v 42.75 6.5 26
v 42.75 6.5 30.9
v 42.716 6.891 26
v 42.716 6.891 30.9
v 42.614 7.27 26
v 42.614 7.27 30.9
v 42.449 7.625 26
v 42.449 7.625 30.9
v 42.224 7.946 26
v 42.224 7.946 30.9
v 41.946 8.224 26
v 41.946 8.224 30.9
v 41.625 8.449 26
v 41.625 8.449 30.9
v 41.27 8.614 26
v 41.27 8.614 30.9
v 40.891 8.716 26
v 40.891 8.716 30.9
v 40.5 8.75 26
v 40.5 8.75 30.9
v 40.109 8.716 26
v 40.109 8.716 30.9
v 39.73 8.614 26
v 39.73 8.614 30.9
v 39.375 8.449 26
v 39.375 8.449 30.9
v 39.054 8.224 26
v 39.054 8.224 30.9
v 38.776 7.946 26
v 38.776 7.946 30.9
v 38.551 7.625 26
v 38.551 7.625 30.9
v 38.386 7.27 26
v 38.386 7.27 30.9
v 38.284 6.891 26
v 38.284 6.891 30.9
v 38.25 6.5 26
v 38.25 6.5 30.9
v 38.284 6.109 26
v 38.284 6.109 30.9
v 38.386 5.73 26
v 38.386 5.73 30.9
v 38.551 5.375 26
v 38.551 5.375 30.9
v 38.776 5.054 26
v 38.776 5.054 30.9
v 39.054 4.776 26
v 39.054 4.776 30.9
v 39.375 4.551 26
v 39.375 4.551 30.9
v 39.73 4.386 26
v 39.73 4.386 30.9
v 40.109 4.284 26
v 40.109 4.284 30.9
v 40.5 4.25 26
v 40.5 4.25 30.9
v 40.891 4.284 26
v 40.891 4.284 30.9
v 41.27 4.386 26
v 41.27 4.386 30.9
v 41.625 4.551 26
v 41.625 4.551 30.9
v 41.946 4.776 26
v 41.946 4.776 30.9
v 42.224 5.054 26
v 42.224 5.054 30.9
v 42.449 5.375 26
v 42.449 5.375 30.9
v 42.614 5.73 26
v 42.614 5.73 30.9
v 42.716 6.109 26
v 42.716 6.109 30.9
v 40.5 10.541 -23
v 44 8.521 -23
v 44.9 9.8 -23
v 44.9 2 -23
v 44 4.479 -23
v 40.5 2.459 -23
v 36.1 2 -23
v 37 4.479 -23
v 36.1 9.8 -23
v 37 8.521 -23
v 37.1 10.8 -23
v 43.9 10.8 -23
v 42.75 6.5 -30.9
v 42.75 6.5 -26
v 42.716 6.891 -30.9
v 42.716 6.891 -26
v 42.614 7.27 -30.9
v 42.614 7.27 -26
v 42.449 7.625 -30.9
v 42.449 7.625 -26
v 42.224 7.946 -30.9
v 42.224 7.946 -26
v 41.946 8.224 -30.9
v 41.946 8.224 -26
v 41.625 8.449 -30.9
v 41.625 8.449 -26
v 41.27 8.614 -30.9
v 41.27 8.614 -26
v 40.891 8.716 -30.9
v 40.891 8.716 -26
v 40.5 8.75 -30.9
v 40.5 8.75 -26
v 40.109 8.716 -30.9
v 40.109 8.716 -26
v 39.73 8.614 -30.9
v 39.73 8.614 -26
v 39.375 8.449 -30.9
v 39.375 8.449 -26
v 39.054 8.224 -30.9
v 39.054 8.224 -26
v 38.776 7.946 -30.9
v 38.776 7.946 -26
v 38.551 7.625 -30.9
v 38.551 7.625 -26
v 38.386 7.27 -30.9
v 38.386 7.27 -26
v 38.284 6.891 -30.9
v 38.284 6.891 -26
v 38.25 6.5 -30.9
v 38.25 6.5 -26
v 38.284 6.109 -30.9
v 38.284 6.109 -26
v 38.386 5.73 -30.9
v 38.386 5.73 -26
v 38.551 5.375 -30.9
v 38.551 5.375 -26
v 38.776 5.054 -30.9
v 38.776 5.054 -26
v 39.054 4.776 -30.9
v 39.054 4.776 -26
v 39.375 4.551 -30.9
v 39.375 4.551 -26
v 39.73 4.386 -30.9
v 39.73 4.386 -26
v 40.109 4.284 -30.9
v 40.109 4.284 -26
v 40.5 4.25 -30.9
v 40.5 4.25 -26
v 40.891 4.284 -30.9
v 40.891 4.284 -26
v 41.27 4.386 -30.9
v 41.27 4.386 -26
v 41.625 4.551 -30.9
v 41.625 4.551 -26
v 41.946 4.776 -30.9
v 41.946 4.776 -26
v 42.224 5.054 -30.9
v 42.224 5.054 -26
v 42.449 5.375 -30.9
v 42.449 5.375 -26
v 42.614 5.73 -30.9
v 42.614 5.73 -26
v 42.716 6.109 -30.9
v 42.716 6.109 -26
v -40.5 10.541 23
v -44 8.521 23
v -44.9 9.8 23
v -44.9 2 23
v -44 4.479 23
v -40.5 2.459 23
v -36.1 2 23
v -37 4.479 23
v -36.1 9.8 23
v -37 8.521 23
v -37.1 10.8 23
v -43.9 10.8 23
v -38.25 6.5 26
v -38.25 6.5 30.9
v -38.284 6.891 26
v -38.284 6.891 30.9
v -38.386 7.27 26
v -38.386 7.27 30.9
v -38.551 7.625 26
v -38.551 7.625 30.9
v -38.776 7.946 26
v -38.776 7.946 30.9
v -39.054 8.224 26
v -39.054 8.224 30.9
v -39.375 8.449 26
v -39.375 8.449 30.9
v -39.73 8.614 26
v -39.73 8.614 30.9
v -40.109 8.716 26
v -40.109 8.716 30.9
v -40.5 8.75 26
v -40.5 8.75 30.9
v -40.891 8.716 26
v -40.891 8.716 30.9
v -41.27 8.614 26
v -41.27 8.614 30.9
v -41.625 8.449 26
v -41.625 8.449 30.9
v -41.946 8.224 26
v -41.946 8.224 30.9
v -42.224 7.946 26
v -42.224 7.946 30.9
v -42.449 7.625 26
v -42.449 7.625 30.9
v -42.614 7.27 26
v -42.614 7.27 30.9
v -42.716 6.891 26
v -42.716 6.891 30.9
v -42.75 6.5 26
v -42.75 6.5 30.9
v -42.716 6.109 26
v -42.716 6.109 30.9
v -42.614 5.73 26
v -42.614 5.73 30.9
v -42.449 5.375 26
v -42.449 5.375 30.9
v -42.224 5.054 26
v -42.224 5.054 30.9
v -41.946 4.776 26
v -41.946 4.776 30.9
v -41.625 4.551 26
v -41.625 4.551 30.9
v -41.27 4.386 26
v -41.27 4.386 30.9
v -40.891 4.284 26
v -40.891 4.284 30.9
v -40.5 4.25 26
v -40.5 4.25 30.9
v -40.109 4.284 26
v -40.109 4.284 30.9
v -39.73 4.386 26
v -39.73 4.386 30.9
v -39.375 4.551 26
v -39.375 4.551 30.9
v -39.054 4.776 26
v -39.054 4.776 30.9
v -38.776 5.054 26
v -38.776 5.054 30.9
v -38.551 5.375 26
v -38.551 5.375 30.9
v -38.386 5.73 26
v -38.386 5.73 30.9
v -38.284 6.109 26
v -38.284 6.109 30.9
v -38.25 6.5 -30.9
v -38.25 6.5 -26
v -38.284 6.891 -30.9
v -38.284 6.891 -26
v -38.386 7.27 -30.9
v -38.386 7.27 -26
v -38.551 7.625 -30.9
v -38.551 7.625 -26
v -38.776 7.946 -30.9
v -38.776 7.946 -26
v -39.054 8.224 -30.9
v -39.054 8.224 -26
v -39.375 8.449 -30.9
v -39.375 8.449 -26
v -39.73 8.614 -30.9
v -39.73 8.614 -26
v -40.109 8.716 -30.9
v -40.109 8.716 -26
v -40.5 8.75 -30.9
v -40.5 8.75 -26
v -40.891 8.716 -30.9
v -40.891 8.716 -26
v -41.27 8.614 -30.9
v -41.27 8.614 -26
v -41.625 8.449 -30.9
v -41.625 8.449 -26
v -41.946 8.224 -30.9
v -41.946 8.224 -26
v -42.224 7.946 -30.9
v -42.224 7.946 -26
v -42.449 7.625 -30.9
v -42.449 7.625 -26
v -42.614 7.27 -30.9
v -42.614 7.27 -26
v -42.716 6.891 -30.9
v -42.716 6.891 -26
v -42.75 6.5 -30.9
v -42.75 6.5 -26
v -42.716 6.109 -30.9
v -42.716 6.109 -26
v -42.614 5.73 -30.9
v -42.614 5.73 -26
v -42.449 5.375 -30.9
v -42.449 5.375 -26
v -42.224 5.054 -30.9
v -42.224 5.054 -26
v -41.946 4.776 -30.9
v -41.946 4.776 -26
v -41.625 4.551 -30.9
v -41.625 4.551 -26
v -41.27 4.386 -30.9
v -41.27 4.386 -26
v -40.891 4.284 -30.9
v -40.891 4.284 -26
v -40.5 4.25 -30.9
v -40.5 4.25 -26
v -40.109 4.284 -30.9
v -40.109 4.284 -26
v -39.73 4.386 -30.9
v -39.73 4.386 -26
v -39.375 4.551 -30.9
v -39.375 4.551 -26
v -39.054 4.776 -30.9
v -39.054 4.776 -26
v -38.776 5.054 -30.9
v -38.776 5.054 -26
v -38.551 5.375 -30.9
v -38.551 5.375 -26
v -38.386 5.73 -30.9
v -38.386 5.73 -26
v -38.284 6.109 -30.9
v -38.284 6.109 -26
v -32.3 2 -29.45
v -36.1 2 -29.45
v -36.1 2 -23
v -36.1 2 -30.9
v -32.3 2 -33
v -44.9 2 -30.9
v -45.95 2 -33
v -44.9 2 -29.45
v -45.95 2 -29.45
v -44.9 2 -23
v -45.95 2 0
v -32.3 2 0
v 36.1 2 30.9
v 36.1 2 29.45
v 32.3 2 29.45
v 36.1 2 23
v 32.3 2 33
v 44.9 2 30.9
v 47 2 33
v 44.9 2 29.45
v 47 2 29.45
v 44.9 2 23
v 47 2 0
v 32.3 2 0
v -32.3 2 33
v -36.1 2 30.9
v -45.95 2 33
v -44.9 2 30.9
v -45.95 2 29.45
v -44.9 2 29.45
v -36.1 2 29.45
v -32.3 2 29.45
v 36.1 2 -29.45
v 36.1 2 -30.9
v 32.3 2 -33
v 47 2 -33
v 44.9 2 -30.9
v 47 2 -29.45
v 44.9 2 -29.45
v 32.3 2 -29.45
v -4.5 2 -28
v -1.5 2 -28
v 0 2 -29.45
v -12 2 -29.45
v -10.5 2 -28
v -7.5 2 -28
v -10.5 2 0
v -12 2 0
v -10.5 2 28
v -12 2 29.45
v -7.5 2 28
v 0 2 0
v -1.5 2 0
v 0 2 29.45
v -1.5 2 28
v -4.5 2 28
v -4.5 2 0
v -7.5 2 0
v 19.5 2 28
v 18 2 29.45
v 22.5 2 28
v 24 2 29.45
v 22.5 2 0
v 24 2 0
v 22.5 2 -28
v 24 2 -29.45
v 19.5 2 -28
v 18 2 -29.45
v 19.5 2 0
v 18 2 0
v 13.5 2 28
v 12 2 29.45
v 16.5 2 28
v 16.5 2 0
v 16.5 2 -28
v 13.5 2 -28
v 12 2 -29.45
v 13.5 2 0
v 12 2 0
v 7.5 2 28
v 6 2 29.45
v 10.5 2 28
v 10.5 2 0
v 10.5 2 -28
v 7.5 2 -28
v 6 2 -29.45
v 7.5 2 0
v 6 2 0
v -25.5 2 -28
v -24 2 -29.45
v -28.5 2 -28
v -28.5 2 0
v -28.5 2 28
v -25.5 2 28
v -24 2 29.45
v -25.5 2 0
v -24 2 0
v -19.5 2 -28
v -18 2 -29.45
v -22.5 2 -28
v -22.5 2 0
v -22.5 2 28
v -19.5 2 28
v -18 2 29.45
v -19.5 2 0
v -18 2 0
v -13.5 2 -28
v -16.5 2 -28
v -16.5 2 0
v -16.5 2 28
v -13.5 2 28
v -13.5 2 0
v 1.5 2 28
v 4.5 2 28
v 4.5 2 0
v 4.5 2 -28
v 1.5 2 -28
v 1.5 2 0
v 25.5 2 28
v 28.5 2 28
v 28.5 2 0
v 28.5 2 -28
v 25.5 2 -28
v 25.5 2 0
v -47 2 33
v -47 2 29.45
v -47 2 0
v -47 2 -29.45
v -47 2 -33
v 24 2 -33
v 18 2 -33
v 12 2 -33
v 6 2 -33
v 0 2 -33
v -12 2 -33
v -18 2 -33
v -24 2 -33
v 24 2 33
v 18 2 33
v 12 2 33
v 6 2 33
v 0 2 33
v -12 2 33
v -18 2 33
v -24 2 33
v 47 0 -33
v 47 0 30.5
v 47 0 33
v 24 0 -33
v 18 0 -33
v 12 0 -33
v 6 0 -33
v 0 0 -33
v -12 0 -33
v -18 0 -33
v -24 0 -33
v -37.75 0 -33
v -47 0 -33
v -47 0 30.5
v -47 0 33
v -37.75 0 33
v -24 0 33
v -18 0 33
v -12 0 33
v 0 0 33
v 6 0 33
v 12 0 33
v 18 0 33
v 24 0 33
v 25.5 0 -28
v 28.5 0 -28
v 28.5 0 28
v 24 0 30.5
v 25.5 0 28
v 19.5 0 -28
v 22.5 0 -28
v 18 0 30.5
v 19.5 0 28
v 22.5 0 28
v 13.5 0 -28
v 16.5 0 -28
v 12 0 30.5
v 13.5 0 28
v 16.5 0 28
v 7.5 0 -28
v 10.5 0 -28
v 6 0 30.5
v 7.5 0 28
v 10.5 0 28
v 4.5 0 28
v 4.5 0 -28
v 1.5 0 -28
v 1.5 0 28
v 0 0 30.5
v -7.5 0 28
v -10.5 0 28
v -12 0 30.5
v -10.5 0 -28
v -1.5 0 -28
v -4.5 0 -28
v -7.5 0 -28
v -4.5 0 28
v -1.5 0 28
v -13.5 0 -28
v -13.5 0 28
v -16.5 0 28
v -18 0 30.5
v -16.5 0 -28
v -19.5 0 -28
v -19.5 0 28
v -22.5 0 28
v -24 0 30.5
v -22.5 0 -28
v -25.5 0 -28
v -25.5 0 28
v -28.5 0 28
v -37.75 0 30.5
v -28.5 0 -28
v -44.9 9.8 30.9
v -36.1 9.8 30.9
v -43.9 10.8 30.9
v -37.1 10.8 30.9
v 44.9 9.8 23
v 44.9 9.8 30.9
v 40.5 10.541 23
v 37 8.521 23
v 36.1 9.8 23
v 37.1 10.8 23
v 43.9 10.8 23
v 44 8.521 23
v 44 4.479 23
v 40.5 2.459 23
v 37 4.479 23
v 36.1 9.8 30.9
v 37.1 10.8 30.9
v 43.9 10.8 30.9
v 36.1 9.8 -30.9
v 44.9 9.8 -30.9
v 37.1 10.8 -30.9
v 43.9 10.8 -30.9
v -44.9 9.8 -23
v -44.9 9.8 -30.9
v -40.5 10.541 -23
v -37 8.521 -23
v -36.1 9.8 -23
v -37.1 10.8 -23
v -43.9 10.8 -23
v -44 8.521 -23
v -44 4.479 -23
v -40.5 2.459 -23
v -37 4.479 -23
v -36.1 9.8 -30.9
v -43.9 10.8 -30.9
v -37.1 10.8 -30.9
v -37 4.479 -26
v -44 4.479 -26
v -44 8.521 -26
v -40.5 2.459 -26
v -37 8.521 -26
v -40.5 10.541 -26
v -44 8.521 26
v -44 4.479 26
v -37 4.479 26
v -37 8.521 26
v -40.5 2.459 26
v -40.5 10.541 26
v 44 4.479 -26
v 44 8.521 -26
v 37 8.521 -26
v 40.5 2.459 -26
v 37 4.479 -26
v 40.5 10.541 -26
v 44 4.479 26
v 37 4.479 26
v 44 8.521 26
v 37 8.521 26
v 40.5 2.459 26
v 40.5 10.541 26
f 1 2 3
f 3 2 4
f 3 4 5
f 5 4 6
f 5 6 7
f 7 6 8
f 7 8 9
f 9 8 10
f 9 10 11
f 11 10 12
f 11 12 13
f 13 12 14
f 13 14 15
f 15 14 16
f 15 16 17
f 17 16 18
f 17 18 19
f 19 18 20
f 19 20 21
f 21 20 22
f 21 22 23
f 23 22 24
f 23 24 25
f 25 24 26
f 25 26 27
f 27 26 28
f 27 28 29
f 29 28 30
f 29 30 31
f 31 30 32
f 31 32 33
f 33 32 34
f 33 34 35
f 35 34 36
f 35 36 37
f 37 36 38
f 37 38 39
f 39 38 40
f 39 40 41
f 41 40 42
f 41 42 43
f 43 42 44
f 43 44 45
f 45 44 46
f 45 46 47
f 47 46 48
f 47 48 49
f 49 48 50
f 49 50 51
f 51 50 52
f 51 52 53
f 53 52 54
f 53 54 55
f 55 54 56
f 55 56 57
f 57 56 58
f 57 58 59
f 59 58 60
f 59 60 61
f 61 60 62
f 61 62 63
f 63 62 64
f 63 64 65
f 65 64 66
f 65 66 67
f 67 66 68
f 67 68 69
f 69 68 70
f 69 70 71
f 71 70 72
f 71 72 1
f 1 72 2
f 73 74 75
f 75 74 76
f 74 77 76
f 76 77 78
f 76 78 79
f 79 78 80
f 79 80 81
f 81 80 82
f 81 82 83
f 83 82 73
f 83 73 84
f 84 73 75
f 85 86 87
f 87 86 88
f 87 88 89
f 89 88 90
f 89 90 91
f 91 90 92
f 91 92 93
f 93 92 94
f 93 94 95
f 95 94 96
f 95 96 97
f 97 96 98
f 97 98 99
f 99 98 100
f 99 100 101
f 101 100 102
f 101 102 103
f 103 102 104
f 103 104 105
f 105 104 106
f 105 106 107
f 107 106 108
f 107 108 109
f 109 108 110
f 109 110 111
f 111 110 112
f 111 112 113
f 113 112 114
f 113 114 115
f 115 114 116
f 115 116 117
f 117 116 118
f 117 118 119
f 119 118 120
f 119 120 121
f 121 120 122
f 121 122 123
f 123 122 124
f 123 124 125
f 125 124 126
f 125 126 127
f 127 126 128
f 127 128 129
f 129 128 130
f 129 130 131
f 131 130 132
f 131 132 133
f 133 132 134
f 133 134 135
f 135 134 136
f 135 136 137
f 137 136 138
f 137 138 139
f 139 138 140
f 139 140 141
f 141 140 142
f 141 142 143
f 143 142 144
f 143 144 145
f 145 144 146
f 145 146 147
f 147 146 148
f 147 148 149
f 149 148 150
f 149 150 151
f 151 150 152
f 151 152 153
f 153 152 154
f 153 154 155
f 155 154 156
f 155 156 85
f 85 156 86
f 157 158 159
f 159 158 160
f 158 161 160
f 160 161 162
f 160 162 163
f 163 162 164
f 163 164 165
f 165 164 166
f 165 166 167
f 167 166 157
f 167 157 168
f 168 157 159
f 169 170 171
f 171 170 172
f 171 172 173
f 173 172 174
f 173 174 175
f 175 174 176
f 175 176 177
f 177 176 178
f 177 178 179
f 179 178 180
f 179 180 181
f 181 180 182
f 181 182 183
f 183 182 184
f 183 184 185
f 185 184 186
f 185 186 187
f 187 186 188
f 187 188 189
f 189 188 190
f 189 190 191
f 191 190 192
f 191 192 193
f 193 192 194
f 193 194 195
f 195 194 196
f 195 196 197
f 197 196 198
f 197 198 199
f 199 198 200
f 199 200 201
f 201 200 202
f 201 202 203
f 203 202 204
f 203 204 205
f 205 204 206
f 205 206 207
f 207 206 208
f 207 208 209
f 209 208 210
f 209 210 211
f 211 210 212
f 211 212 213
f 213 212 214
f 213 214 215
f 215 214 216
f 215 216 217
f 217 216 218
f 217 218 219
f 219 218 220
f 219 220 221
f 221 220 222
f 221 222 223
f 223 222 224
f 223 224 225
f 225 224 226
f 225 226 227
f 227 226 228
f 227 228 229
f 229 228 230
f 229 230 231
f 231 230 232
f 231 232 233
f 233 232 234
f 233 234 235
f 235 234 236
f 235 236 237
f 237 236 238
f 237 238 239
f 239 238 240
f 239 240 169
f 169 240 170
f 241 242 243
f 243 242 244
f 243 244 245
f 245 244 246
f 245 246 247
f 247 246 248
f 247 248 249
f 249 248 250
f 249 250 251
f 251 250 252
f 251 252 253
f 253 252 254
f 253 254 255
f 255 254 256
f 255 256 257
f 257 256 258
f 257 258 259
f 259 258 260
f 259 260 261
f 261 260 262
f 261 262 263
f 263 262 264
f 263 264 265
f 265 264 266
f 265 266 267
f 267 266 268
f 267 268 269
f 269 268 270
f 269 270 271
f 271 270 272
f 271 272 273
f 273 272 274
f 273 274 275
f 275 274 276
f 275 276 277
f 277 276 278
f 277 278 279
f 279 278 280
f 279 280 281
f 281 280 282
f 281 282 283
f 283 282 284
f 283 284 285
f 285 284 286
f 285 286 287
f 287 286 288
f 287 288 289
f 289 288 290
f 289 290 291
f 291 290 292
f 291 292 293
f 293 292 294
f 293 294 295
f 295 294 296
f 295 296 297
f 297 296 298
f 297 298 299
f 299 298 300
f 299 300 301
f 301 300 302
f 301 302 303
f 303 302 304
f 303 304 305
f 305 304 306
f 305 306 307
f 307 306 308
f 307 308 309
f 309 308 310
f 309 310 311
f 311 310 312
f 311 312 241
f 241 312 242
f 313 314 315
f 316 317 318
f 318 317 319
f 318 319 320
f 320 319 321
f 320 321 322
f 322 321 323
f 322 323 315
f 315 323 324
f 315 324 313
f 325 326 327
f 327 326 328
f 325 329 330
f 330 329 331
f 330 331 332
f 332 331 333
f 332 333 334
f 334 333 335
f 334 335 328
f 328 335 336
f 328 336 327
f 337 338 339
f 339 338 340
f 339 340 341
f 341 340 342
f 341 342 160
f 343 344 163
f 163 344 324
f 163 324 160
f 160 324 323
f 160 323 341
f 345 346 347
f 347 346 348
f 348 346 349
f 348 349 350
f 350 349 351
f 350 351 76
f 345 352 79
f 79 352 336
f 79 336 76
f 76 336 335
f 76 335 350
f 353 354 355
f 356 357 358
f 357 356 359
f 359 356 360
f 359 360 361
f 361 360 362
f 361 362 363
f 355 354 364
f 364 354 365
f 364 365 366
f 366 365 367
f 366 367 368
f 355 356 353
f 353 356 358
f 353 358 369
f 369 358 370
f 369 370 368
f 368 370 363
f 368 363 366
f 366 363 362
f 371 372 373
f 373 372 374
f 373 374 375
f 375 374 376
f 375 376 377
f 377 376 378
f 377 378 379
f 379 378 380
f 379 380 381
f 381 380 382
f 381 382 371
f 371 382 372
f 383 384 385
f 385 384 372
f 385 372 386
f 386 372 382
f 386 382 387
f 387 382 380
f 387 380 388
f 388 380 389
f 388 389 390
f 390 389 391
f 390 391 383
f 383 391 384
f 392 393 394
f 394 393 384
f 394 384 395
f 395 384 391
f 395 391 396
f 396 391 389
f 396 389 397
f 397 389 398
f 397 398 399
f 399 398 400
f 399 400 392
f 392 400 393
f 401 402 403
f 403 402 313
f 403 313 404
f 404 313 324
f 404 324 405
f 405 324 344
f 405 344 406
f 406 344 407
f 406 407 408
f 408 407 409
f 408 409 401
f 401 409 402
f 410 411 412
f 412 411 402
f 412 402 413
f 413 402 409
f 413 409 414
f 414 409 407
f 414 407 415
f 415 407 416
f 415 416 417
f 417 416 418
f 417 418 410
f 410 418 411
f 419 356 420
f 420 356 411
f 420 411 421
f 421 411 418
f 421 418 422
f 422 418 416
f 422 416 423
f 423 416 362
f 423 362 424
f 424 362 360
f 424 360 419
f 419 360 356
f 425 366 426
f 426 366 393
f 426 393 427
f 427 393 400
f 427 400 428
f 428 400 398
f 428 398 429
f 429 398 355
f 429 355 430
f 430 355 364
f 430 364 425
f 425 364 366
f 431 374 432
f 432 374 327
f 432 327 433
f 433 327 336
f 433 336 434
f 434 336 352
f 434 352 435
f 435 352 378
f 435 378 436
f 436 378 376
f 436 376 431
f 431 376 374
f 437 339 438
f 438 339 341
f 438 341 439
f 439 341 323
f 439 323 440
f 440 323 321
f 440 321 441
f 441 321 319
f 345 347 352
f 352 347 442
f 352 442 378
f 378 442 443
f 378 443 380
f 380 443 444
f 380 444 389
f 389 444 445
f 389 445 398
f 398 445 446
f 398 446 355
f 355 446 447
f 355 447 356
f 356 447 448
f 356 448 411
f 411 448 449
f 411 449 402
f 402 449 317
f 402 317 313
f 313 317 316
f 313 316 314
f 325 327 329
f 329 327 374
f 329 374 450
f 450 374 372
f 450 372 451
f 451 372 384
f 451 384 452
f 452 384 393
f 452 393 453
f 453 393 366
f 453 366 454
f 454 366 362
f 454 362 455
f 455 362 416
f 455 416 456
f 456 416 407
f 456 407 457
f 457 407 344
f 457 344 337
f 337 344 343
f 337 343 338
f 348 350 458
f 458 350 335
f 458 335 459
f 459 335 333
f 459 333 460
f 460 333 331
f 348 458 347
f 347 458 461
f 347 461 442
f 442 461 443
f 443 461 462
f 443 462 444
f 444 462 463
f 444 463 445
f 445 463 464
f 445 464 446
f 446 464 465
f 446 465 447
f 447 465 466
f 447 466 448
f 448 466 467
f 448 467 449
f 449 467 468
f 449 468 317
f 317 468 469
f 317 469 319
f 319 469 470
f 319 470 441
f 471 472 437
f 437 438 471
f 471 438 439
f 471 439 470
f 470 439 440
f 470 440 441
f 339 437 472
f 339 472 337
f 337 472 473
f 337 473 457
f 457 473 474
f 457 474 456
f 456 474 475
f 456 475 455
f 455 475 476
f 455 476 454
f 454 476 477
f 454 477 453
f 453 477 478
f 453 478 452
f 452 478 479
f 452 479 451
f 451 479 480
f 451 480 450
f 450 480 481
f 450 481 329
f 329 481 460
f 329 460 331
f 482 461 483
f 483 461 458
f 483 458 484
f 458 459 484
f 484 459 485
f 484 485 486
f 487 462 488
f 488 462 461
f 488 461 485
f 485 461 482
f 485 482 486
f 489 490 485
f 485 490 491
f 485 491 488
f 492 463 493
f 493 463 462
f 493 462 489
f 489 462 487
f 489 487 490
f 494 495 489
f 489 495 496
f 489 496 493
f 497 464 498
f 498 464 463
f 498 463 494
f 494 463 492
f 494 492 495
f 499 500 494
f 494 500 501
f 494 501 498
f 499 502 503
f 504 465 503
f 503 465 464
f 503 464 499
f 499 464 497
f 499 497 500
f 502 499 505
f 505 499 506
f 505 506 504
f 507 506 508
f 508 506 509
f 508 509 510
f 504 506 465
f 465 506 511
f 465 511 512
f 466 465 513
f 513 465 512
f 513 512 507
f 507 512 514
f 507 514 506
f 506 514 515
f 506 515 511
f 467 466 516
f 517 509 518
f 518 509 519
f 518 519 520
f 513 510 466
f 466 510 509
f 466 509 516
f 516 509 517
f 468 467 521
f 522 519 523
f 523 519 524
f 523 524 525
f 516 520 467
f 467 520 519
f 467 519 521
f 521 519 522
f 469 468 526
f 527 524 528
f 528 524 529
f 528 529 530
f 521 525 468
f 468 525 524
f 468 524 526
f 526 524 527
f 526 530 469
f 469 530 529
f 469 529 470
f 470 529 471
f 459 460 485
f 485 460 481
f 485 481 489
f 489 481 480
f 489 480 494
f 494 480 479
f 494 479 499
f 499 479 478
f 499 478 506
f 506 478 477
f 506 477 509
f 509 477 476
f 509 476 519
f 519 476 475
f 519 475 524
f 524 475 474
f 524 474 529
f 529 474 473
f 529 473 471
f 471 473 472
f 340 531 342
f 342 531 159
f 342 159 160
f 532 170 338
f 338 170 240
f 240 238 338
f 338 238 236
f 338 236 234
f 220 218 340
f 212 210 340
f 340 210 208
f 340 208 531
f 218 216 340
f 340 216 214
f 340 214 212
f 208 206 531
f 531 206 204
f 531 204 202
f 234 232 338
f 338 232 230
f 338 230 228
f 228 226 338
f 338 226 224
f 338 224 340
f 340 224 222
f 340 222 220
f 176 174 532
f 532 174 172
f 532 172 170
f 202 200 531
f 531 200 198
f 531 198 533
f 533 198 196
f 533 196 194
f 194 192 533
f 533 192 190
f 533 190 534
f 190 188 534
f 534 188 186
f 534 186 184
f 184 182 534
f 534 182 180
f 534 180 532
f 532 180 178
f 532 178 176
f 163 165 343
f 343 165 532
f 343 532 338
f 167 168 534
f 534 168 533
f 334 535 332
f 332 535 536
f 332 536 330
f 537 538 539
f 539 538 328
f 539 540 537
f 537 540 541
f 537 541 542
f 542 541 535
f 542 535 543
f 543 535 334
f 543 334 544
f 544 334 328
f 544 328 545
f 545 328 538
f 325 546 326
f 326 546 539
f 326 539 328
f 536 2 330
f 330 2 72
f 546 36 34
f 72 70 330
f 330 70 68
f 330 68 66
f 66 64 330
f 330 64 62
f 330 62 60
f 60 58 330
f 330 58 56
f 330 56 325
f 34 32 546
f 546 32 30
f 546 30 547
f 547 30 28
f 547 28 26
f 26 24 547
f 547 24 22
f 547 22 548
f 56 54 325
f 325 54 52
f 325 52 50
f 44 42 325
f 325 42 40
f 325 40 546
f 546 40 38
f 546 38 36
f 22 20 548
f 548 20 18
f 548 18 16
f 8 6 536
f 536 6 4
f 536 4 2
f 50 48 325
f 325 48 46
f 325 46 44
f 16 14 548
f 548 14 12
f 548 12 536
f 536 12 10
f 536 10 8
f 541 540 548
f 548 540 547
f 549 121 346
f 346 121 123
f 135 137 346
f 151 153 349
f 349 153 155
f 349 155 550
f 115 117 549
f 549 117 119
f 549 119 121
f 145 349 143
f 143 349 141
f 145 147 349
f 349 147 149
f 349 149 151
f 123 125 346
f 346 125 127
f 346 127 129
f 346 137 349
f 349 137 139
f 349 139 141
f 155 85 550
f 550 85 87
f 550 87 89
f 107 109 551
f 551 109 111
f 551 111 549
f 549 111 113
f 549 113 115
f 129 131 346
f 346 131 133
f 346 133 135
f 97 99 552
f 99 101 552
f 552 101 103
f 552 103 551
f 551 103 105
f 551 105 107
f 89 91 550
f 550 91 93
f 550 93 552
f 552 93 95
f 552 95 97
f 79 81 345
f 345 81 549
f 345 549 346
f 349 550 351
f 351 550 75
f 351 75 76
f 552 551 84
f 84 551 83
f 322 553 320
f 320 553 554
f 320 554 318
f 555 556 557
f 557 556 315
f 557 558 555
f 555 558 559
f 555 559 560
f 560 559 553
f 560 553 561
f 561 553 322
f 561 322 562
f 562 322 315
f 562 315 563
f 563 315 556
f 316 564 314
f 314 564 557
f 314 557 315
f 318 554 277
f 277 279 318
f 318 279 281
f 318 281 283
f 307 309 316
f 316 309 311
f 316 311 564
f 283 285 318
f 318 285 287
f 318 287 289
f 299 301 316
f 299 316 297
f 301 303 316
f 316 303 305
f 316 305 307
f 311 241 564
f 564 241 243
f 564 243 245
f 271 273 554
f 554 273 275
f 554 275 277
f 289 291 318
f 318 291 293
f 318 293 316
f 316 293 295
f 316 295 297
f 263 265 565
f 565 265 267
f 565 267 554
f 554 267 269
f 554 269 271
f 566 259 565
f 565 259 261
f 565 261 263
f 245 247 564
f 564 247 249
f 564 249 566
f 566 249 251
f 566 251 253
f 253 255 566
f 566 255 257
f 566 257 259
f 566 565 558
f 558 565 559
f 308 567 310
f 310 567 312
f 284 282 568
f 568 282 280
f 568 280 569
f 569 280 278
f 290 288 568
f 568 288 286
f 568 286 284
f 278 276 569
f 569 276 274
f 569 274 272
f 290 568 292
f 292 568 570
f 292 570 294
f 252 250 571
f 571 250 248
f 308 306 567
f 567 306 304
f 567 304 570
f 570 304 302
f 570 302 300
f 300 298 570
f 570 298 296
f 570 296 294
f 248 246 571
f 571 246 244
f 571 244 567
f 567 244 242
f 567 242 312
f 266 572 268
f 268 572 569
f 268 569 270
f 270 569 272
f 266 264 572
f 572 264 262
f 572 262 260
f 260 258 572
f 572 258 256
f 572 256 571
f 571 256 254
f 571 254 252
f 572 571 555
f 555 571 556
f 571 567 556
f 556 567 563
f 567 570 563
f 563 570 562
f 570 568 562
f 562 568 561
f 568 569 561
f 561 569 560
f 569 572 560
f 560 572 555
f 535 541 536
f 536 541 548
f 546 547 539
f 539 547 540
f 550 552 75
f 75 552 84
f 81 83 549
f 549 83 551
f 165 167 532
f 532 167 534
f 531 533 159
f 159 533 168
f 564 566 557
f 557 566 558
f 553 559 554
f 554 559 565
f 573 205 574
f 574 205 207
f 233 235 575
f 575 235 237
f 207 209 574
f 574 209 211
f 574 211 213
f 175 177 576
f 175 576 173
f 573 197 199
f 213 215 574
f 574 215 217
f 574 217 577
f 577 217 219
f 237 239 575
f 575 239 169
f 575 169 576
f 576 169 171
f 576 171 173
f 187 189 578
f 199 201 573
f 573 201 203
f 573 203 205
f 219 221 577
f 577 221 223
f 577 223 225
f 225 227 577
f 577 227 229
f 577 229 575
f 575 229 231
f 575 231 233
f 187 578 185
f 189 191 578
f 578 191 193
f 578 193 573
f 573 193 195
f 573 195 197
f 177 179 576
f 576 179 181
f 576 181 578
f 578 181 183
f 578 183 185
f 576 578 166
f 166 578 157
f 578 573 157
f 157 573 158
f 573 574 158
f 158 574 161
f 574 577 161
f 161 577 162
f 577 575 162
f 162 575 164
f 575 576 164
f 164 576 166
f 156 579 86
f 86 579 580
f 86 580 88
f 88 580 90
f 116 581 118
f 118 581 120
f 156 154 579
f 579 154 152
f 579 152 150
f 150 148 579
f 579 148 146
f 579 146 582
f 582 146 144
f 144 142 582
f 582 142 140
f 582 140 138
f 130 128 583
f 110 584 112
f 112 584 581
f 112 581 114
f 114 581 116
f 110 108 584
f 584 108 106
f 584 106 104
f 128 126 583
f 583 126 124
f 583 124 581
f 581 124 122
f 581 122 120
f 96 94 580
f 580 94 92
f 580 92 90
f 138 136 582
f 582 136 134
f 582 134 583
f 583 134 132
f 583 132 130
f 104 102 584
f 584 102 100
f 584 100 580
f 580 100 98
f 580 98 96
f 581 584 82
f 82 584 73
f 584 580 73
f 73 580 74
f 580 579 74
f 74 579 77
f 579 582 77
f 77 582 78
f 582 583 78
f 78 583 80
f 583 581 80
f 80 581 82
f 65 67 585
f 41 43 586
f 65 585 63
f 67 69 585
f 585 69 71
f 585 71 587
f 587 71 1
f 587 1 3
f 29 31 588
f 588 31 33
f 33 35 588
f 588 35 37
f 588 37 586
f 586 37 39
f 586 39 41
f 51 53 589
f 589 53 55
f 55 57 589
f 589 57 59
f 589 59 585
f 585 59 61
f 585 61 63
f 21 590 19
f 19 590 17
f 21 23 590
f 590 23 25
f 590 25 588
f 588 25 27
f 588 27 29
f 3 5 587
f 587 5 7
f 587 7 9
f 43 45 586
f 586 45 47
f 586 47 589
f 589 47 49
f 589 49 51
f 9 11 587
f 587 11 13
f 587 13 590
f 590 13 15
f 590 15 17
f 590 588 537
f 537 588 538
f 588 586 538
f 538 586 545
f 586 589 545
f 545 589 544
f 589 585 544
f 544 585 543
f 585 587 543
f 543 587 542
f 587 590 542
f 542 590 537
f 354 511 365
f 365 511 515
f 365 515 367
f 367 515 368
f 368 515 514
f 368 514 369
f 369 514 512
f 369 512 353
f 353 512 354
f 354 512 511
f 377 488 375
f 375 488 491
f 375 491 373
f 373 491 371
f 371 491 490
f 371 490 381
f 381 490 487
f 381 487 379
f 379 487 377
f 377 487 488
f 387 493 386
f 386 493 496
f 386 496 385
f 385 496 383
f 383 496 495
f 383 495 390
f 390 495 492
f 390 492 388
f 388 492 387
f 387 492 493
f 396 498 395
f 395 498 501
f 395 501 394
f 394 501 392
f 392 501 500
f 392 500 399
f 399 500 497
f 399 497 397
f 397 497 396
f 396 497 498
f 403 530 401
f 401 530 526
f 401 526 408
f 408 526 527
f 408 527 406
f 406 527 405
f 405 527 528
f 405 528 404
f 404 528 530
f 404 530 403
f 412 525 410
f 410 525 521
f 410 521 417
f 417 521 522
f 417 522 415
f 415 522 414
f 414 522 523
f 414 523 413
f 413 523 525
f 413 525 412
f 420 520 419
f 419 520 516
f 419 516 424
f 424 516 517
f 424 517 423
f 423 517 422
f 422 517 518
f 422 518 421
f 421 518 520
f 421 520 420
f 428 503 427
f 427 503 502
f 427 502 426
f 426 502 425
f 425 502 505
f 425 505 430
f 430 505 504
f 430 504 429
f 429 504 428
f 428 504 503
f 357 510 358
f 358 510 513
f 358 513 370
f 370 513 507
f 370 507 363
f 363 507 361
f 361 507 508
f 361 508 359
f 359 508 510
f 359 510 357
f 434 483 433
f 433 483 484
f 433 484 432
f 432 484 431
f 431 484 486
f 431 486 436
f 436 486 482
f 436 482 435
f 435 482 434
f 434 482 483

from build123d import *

# Parameters (mm, degrees)
SKETCH1_W            = 94
SKETCH1_H            = 66
BOSS_EXTRUDE1_DEPTH  = 2
SKETCH2_W            = 8.8
SKETCH2_H            = 7.9
BOSS_EXTRUDE2_DEPTH  = 8.8
SKETCH3_R            = 2.25
CUT_EXTRUDE1_DEPTH   = 81.055293392
CUT_EXTRUDE2_DEPTH   = 3
CHAMFER1_SIZE        = 1
MIRROR2_COPY_1_DEPTH = 3
CUT_EXTRUDE3_REACH   = 60.099
SKETCH6_W            = 3
SKETCH6_H            = 56


with BuildPart() as part:
    # Sketch1 → Boss-Extrude1 (new body)
    with BuildSketch(Plane(origin=(0, 0, 0), x_dir=(1, 0, 0), z_dir=(0, 1, 0))):
        Rectangle(SKETCH1_W, SKETCH1_H)
    extrude(amount=BOSS_EXTRUDE1_DEPTH)

    # Sketch2 → Boss-Extrude2 (add)
    with BuildSketch(Plane(origin=(0, 2, 0), x_dir=(1, 0, 0), z_dir=(0, 1, 0))):
        with Locations((-40.5, -26.95)):
            Rectangle(SKETCH2_W, SKETCH2_H)
        with Locations((40.5, -26.95)):
            Rectangle(SKETCH2_W, SKETCH2_H)
        with Locations((40.5, 26.95)):
            Rectangle(SKETCH2_W, SKETCH2_H)
        with Locations((-40.5, 26.95)):
            Rectangle(SKETCH2_W, SKETCH2_H)
    extrude(amount=BOSS_EXTRUDE2_DEPTH)

    # Sketch3 → Cut-Extrude1 (cut, through all)
    with BuildSketch(Plane.XY.offset(30.9)):
        with Locations((-40.5, 6.5)):
            Circle(SKETCH3_R)
        with Locations((40.5, 6.5)):
            Circle(SKETCH3_R)
    extrude(amount=-CUT_EXTRUDE1_DEPTH, mode=Mode.SUBTRACT)

    # Sketch5 → Cut-Extrude2 (cut)
    with BuildSketch(Plane.XY.offset(-23)):
        Polygon((-40.5, 10.541451884), (-44, 8.520725942), (-44, 4.479274058), (-40.5, 2.458548116), (-37, 4.479274058), (-37, 8.520725942), align=None)
    cut_extrude2 = extrude(amount=-CUT_EXTRUDE2_DEPTH, mode=Mode.SUBTRACT)

    # Chamfer1
    chamfer1_edges = [part.edges().sort_by_distance(p)[0] for p in [
        (-44.9, 10.8, 26.95),
        (-36.1, 10.8, 26.95),
        (44.9, 10.8, 26.95),
        (36.1, 10.8, 26.95),
        (36.1, 10.8, -26.95),
        (44.9, 10.8, -26.95),
        (-44.9, 10.8, -26.95),
        (-36.1, 10.8, -26.95),
    ]]
    chamfer(chamfer1_edges, length=CHAMFER1_SIZE)

    # Mirror1: Cut-Extrude2 across plane
    add(cut_extrude2.mirror(Plane.XY), mode=Mode.SUBTRACT)

    # Mirror2: Cut-Extrude2 across plane
    add(cut_extrude2.mirror(Plane(origin=(0, 0, 0), x_dir=(0, 0, 1), z_dir=(1, 0, 0))), mode=Mode.SUBTRACT)

    # Mirror2 copy 1 sketch → Mirror2 copy 1 (cut)
    with BuildSketch(Plane(origin=(0, 0, 23), x_dir=(-1, 0, 0), z_dir=(0, 0, -1))):
        Polygon((-40.5, 10.541451884), (-44, 8.520725942), (-44, 4.479274058), (-40.5, 2.458548116), (-37, 4.479274058), (-37, 8.520725942), align=None)
    extrude(amount=-MIRROR2_COPY_1_DEPTH, mode=Mode.SUBTRACT)

    # Sketch6 → Cut-Extrude3 (cut, up to next)
    with BuildSketch(Plane(origin=(0, 2, 0), x_dir=(1, 0, 0), z_dir=(0, 1, 0)), mode=Mode.PRIVATE) as cut_extrude3_sk1:
        with Locations((-3, 0)):
            Rectangle(SKETCH6_W, SKETCH6_H)
    cut_extrude3_tool1 = extrude(cut_extrude3_sk1.sketch, amount=-CUT_EXTRUDE3_REACH, mode=Mode.PRIVATE) & part.part
    # Sketch6 → Cut-Extrude3 (cut, up to next)
    with BuildSketch(Plane(origin=(0, 2, 0), x_dir=(1, 0, 0), z_dir=(0, 1, 0)), mode=Mode.PRIVATE) as cut_extrude3_sk2:
        with Locations((-9, 0)):
            Rectangle(SKETCH6_W, SKETCH6_H)
    cut_extrude3_tool2 = extrude(cut_extrude3_sk2.sketch, amount=-CUT_EXTRUDE3_REACH, mode=Mode.PRIVATE) & part.part
    # Sketch6 → Cut-Extrude3 (cut, up to next)
    with BuildSketch(Plane(origin=(0, 2, 0), x_dir=(1, 0, 0), z_dir=(0, 1, 0)), mode=Mode.PRIVATE) as cut_extrude3_sk3:
        with Locations((-15, 0)):
            Rectangle(SKETCH6_W, SKETCH6_H)
    cut_extrude3_tool3 = extrude(cut_extrude3_sk3.sketch, amount=-CUT_EXTRUDE3_REACH, mode=Mode.PRIVATE) & part.part
    # Sketch6 → Cut-Extrude3 (cut, up to next)
    with BuildSketch(Plane(origin=(0, 2, 0), x_dir=(1, 0, 0), z_dir=(0, 1, 0)), mode=Mode.PRIVATE) as cut_extrude3_sk4:
        with Locations((-21, 0)):
            Rectangle(SKETCH6_W, SKETCH6_H)
    cut_extrude3_tool4 = extrude(cut_extrude3_sk4.sketch, amount=-CUT_EXTRUDE3_REACH, mode=Mode.PRIVATE) & part.part
    # Sketch6 → Cut-Extrude3 (cut, up to next)
    with BuildSketch(Plane(origin=(0, 2, 0), x_dir=(1, 0, 0), z_dir=(0, 1, 0)), mode=Mode.PRIVATE) as cut_extrude3_sk5:
        with Locations((-27, 0)):
            Rectangle(SKETCH6_W, SKETCH6_H)
    cut_extrude3_tool5 = extrude(cut_extrude3_sk5.sketch, amount=-CUT_EXTRUDE3_REACH, mode=Mode.PRIVATE) & part.part
    # Sketch6 → Cut-Extrude3 (cut, up to next)
    with BuildSketch(Plane(origin=(0, 2, 0), x_dir=(1, 0, 0), z_dir=(0, 1, 0)), mode=Mode.PRIVATE) as cut_extrude3_sk6:
        with Locations((3, 0)):
            Rectangle(SKETCH6_W, SKETCH6_H)
    cut_extrude3_tool6 = extrude(cut_extrude3_sk6.sketch, amount=-CUT_EXTRUDE3_REACH, mode=Mode.PRIVATE) & part.part
    # Sketch6 → Cut-Extrude3 (cut, up to next)
    with BuildSketch(Plane(origin=(0, 2, 0), x_dir=(1, 0, 0), z_dir=(0, 1, 0)), mode=Mode.PRIVATE) as cut_extrude3_sk7:
        with Locations((9, 0)):
            Rectangle(SKETCH6_W, SKETCH6_H)
    cut_extrude3_tool7 = extrude(cut_extrude3_sk7.sketch, amount=-CUT_EXTRUDE3_REACH, mode=Mode.PRIVATE) & part.part
    # Sketch6 → Cut-Extrude3 (cut, up to next)
    with BuildSketch(Plane(origin=(0, 2, 0), x_dir=(1, 0, 0), z_dir=(0, 1, 0)), mode=Mode.PRIVATE) as cut_extrude3_sk8:
        with Locations((15, 0)):
            Rectangle(SKETCH6_W, SKETCH6_H)
    cut_extrude3_tool8 = extrude(cut_extrude3_sk8.sketch, amount=-CUT_EXTRUDE3_REACH, mode=Mode.PRIVATE) & part.part
    # Sketch6 → Cut-Extrude3 (cut, up to next)
    with BuildSketch(Plane(origin=(0, 2, 0), x_dir=(1, 0, 0), z_dir=(0, 1, 0)), mode=Mode.PRIVATE) as cut_extrude3_sk9:
        with Locations((21, 0)):
            Rectangle(SKETCH6_W, SKETCH6_H)
    cut_extrude3_tool9 = extrude(cut_extrude3_sk9.sketch, amount=-CUT_EXTRUDE3_REACH, mode=Mode.PRIVATE) & part.part
    # Sketch6 → Cut-Extrude3 (cut, up to next)
    with BuildSketch(Plane(origin=(0, 2, 0), x_dir=(1, 0, 0), z_dir=(0, 1, 0)), mode=Mode.PRIVATE) as cut_extrude3_sk10:
        with Locations((27, 0)):
            Rectangle(SKETCH6_W, SKETCH6_H)
    cut_extrude3_tool10 = extrude(cut_extrude3_sk10.sketch, amount=-CUT_EXTRUDE3_REACH, mode=Mode.PRIVATE) & part.part
    add(cut_extrude3_tool1.solids().sort_by_distance((-3, 2, 0))[0], mode=Mode.SUBTRACT)
    add(cut_extrude3_tool2.solids().sort_by_distance((-9, 2, 0))[0], mode=Mode.SUBTRACT)
    add(cut_extrude3_tool3.solids().sort_by_distance((-15, 2, 0))[0], mode=Mode.SUBTRACT)
    add(cut_extrude3_tool4.solids().sort_by_distance((-21, 2, 0))[0], mode=Mode.SUBTRACT)
    add(cut_extrude3_tool5.solids().sort_by_distance((-27, 2, 0))[0], mode=Mode.SUBTRACT)
    add(cut_extrude3_tool6.solids().sort_by_distance((3, 2, 0))[0], mode=Mode.SUBTRACT)
    add(cut_extrude3_tool7.solids().sort_by_distance((9, 2, 0))[0], mode=Mode.SUBTRACT)
    add(cut_extrude3_tool8.solids().sort_by_distance((15, 2, 0))[0], mode=Mode.SUBTRACT)
    add(cut_extrude3_tool9.solids().sort_by_distance((21, 2, 0))[0], mode=Mode.SUBTRACT)
    add(cut_extrude3_tool10.solids().sort_by_distance((27, 2, 0))[0], mode=Mode.SUBTRACT)


solid = part.part
